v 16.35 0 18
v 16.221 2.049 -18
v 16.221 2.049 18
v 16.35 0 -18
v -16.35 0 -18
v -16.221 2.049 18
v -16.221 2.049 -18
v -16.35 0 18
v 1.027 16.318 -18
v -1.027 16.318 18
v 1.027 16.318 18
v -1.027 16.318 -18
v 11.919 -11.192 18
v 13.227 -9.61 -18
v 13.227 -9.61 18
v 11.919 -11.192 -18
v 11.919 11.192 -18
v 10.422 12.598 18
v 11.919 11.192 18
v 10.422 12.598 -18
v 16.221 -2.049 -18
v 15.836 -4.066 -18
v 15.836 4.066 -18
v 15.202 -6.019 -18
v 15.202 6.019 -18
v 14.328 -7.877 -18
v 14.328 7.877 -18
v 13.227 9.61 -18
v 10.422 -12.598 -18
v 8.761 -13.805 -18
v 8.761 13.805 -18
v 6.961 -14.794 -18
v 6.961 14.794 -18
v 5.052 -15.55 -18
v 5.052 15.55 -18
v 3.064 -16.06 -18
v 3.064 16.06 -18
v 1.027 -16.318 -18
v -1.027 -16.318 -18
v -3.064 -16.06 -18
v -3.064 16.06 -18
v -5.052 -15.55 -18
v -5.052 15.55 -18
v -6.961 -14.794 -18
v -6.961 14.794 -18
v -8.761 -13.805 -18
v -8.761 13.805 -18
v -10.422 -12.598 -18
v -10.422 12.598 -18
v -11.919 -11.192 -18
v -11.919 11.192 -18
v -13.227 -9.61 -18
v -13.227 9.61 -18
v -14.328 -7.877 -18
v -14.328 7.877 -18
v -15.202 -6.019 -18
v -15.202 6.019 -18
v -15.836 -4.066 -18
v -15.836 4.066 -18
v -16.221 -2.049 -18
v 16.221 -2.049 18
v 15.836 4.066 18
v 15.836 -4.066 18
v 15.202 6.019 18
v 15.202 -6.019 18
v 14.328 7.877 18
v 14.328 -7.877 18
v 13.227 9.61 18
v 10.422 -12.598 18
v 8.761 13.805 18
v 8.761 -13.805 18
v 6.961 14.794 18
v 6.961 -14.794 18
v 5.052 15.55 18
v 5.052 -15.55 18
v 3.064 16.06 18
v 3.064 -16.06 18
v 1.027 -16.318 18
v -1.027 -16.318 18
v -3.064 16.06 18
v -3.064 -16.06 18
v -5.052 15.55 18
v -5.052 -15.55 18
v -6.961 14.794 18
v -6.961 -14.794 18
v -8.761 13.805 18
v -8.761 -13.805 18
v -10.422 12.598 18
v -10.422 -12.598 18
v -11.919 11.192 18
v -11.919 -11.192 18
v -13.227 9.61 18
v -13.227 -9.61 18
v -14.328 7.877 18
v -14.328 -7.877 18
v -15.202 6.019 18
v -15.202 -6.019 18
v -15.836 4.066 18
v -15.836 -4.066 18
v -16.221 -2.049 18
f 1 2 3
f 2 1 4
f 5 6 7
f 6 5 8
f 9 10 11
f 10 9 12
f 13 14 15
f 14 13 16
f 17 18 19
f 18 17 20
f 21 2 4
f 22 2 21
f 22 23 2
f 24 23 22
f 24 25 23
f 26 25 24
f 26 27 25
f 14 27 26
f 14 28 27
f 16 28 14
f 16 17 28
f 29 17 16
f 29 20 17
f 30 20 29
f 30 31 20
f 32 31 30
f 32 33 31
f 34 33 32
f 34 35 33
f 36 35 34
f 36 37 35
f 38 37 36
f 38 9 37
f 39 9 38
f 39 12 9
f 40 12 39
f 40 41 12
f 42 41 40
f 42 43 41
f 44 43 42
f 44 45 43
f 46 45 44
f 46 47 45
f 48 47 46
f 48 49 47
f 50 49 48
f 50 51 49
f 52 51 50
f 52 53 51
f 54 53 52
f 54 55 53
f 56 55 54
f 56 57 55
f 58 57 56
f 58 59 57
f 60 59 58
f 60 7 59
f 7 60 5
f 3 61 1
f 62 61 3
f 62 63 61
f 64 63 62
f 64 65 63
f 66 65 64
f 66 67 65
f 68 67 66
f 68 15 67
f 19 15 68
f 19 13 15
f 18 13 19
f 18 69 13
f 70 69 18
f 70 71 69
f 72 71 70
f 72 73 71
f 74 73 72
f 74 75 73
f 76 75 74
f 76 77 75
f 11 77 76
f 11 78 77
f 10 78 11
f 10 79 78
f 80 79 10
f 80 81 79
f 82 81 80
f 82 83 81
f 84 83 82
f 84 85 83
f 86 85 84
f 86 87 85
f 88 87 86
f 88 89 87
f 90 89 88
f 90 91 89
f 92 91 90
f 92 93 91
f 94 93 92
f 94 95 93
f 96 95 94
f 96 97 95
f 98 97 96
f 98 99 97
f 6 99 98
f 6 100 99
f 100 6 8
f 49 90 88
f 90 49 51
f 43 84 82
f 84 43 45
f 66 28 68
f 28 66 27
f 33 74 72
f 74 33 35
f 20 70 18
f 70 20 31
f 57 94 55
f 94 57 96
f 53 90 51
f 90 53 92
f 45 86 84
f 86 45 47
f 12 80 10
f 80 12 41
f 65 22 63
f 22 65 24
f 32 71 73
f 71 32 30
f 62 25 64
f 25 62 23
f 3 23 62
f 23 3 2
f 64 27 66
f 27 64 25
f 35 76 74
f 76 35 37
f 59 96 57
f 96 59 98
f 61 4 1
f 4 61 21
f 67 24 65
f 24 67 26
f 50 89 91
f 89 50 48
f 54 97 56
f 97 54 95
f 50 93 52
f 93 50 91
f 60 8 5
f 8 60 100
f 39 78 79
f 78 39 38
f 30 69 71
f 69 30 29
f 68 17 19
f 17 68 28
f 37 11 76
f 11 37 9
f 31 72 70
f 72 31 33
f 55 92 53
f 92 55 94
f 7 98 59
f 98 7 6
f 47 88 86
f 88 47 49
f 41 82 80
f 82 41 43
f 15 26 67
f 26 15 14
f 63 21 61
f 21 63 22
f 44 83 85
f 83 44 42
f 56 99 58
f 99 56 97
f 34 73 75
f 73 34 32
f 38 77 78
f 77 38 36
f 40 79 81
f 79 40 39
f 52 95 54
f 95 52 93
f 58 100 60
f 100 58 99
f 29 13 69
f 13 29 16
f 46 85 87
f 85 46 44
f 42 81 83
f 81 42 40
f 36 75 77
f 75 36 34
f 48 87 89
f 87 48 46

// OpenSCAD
$fn = 50;


difference() {
	union() {
		translate(v = [0, 0, -18.0000000000]) {
			cylinder(h = 36, r = 16.3500000000);
		}
	}
	union() {
		translate(v = [0, 0, -100.0000000000]) {
			cylinder(h = 200, r = 0);
		}
	}
}
